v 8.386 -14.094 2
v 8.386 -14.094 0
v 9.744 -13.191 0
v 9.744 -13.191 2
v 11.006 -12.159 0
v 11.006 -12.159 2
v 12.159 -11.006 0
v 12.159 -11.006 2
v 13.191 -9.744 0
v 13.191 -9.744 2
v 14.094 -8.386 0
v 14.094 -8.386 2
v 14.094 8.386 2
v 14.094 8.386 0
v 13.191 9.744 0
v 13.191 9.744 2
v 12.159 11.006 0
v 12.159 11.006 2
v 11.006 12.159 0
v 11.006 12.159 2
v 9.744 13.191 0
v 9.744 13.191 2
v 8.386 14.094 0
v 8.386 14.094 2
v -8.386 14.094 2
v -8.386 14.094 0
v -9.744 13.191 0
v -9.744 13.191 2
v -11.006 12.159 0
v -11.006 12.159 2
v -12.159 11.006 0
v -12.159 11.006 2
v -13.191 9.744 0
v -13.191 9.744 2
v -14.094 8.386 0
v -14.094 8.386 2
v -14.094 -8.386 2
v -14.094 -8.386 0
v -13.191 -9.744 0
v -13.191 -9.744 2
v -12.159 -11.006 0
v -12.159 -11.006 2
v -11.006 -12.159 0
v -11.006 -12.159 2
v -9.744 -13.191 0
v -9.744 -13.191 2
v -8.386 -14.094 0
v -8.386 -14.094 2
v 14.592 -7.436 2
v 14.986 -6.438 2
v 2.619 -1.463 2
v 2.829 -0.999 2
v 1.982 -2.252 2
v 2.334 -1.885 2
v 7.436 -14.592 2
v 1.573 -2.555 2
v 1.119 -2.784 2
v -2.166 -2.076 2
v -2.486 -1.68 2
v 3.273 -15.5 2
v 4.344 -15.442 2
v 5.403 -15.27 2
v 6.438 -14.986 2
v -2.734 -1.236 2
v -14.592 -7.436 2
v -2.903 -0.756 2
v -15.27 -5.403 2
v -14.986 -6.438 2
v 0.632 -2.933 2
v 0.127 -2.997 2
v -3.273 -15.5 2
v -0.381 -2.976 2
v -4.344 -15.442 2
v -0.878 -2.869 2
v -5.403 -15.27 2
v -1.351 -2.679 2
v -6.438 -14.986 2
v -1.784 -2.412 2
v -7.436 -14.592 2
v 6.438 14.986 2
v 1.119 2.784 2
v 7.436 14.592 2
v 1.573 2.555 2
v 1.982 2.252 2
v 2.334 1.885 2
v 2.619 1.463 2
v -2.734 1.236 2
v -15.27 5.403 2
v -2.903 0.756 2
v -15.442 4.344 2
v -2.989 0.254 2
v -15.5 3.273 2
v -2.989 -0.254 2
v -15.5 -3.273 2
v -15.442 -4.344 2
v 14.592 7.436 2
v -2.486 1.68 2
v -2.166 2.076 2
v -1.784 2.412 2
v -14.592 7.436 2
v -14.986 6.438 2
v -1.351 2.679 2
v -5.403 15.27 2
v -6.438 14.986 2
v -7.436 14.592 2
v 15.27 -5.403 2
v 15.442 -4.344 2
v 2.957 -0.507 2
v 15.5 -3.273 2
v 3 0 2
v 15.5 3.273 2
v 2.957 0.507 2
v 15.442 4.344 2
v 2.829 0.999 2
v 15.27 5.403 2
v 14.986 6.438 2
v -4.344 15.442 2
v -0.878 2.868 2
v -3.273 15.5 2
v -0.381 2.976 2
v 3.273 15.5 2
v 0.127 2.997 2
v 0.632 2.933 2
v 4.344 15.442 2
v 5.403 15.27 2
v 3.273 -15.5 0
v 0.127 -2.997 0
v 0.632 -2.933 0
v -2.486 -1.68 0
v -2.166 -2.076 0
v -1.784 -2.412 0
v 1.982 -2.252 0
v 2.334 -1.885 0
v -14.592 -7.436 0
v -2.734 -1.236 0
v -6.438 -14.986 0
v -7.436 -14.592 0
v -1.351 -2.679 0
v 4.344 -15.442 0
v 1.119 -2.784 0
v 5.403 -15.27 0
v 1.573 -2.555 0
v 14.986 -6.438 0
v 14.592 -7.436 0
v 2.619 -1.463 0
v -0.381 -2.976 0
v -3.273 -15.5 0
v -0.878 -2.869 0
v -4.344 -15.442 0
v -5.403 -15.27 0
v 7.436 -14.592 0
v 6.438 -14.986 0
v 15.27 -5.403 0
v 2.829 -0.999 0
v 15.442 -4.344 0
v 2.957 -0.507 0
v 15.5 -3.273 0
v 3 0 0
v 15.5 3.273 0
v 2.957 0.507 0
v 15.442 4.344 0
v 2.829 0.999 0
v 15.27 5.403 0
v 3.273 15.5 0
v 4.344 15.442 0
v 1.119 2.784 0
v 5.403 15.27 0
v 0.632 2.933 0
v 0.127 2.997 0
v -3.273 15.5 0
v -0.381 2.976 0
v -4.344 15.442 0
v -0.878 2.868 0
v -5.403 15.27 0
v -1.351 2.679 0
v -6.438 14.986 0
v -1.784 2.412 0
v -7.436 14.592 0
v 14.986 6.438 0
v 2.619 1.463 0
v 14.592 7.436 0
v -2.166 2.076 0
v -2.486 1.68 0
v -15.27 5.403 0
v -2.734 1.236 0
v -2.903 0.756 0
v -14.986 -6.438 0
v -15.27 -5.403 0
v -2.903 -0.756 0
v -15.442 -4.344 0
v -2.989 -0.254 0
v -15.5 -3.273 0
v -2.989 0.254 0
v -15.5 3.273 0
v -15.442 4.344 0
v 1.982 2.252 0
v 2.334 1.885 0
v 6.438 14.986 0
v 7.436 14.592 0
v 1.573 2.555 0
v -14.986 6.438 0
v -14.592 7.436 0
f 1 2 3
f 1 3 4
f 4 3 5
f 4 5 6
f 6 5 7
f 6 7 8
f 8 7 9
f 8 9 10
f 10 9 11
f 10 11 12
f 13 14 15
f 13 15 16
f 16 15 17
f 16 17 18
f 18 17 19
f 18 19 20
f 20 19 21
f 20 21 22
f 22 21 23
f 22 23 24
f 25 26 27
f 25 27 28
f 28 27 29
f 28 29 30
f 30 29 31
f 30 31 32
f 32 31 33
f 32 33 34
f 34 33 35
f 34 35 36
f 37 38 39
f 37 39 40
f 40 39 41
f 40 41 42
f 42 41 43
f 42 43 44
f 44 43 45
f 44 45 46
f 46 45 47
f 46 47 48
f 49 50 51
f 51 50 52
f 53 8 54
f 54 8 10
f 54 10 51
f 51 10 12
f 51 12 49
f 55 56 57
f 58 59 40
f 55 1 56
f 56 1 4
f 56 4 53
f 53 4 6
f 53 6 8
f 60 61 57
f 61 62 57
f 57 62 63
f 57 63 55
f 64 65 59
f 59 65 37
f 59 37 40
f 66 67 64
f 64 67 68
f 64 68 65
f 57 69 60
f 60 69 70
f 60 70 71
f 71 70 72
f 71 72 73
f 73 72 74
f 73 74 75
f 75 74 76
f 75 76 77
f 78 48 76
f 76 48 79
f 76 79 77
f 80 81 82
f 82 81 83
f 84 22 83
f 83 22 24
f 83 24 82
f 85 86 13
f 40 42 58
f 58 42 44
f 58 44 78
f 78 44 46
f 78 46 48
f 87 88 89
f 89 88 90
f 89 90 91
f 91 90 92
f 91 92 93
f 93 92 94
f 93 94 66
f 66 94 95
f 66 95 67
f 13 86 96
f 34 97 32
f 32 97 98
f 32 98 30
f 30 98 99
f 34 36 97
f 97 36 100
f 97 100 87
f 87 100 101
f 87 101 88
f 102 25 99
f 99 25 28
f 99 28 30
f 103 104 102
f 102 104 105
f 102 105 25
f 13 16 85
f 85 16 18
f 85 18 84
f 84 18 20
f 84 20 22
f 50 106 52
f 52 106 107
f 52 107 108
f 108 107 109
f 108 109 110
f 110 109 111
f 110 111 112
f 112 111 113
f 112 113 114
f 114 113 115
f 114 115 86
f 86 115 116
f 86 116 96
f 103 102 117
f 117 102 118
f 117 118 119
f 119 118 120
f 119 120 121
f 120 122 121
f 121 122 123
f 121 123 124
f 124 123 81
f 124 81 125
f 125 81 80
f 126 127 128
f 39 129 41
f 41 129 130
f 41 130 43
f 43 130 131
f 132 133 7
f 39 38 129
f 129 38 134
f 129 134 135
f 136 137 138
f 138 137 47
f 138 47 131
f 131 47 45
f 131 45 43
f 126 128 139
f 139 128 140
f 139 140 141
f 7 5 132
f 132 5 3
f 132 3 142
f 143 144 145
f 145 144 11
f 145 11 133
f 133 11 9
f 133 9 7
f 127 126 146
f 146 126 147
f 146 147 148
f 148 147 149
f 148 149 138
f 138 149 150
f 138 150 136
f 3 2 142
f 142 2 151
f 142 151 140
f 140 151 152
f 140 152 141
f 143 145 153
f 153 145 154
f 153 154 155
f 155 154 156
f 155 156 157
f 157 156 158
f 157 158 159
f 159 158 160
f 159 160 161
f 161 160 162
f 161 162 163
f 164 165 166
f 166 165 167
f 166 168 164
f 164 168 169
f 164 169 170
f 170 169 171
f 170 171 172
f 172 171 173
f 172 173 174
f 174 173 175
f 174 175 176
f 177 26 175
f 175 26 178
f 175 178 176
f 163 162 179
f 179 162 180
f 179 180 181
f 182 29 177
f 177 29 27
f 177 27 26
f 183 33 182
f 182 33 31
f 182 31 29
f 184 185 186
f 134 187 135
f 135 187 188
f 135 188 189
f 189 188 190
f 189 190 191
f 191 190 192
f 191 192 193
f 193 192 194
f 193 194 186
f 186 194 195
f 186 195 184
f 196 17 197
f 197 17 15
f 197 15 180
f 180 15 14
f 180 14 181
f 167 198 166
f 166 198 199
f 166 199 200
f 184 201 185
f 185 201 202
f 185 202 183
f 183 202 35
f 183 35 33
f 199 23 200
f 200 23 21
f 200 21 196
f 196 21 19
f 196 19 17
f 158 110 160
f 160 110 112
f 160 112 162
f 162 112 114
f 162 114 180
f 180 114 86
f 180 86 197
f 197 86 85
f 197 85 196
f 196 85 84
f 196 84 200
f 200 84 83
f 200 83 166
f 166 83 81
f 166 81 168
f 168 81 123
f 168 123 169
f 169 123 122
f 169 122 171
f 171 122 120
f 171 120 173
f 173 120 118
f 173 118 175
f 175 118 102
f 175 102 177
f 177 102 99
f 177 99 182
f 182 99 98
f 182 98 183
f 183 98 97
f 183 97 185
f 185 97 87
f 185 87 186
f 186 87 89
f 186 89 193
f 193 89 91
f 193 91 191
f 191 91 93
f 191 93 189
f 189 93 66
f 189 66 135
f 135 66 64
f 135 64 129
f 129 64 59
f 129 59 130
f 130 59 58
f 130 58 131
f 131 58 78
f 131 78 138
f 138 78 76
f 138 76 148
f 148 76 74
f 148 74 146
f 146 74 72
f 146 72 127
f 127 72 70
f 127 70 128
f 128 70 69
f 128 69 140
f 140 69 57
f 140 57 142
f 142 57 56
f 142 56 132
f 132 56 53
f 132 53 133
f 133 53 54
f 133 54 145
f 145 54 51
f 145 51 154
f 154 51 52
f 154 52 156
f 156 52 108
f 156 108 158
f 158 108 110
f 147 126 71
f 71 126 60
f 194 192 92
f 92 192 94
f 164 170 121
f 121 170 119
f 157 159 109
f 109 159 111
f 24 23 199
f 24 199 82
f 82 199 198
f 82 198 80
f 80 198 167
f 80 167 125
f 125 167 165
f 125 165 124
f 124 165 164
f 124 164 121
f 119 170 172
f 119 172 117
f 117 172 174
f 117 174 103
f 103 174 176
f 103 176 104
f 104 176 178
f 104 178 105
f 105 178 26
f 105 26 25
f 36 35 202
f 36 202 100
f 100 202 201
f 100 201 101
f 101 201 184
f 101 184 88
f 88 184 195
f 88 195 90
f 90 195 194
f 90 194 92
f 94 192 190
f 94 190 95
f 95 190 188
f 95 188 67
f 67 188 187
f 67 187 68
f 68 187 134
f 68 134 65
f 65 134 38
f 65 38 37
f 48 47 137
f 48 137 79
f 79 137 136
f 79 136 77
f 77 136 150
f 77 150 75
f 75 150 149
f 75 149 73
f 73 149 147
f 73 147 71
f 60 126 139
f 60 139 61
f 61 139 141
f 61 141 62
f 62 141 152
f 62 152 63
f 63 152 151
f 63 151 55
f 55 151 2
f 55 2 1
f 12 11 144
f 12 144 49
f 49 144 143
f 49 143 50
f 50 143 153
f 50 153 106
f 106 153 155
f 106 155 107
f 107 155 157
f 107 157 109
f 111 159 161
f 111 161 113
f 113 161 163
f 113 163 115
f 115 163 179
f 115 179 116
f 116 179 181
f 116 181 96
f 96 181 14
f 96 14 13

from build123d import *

# Parameters (mm, degrees)
ESQUISSE1_R             = 16.4
BOSS_EXTRU_1_DEPTH      = 2
ESQUISSE3_R             = 3
ENL_V_MAT_EXTRU_1_DEPTH = 3
ESQUISSE4_W             = 72.110421533
ESQUISSE4_H             = 46.707886675
ESQUISSE4_W_2           = 31
ESQUISSE4_H_2           = 31
ENL_V_MAT_EXTRU_2_DEPTH = 10
CONG_1_R                = 10


with BuildPart() as part:
    # Esquisse1 → Boss.-Extru.1 (new body)
    with BuildSketch(Plane.XY):
        Circle(ESQUISSE1_R)
    extrude(amount=BOSS_EXTRU_1_DEPTH)

    # Esquisse3 → Enlèv. mat.-Extru.1 (cut, through all)
    with BuildSketch(Plane.XY.offset(2)):
        Circle(ESQUISSE3_R)
    extrude(amount=-ENL_V_MAT_EXTRU_1_DEPTH, mode=Mode.SUBTRACT)

    # Esquisse4 → Enlèv. mat.-Extru.2 (cut)
    with BuildSketch(Plane(origin=(0, 0, 0), x_dir=(-1, 0, 0), z_dir=(0, 0, -1))):
        with Locations((-0.063033586, -0.977020572)):
            Rectangle(ESQUISSE4_W, ESQUISSE4_H)
        Rectangle(ESQUISSE4_W_2, ESQUISSE4_H_2, mode=Mode.SUBTRACT)
    extrude(amount=-ENL_V_MAT_EXTRU_2_DEPTH, mode=Mode.SUBTRACT)

    # Congé1
    cong_1_edges = [part.edges().sort_by_distance(p)[0] for p in [
        (15.5, -5.35817133, 1),
        (15.5, 5.35817133, 1),
        (5.35817133, 15.5, 1),
        (-5.35817133, 15.5, 1),
        (-15.5, 5.35817133, 1),
        (-15.5, -5.35817133, 1),
        (-5.35817133, -15.5, 1),
        (5.35817133, -15.5, 1),
    ]]
    fillet(cong_1_edges, radius=CONG_1_R)


solid = part.part
